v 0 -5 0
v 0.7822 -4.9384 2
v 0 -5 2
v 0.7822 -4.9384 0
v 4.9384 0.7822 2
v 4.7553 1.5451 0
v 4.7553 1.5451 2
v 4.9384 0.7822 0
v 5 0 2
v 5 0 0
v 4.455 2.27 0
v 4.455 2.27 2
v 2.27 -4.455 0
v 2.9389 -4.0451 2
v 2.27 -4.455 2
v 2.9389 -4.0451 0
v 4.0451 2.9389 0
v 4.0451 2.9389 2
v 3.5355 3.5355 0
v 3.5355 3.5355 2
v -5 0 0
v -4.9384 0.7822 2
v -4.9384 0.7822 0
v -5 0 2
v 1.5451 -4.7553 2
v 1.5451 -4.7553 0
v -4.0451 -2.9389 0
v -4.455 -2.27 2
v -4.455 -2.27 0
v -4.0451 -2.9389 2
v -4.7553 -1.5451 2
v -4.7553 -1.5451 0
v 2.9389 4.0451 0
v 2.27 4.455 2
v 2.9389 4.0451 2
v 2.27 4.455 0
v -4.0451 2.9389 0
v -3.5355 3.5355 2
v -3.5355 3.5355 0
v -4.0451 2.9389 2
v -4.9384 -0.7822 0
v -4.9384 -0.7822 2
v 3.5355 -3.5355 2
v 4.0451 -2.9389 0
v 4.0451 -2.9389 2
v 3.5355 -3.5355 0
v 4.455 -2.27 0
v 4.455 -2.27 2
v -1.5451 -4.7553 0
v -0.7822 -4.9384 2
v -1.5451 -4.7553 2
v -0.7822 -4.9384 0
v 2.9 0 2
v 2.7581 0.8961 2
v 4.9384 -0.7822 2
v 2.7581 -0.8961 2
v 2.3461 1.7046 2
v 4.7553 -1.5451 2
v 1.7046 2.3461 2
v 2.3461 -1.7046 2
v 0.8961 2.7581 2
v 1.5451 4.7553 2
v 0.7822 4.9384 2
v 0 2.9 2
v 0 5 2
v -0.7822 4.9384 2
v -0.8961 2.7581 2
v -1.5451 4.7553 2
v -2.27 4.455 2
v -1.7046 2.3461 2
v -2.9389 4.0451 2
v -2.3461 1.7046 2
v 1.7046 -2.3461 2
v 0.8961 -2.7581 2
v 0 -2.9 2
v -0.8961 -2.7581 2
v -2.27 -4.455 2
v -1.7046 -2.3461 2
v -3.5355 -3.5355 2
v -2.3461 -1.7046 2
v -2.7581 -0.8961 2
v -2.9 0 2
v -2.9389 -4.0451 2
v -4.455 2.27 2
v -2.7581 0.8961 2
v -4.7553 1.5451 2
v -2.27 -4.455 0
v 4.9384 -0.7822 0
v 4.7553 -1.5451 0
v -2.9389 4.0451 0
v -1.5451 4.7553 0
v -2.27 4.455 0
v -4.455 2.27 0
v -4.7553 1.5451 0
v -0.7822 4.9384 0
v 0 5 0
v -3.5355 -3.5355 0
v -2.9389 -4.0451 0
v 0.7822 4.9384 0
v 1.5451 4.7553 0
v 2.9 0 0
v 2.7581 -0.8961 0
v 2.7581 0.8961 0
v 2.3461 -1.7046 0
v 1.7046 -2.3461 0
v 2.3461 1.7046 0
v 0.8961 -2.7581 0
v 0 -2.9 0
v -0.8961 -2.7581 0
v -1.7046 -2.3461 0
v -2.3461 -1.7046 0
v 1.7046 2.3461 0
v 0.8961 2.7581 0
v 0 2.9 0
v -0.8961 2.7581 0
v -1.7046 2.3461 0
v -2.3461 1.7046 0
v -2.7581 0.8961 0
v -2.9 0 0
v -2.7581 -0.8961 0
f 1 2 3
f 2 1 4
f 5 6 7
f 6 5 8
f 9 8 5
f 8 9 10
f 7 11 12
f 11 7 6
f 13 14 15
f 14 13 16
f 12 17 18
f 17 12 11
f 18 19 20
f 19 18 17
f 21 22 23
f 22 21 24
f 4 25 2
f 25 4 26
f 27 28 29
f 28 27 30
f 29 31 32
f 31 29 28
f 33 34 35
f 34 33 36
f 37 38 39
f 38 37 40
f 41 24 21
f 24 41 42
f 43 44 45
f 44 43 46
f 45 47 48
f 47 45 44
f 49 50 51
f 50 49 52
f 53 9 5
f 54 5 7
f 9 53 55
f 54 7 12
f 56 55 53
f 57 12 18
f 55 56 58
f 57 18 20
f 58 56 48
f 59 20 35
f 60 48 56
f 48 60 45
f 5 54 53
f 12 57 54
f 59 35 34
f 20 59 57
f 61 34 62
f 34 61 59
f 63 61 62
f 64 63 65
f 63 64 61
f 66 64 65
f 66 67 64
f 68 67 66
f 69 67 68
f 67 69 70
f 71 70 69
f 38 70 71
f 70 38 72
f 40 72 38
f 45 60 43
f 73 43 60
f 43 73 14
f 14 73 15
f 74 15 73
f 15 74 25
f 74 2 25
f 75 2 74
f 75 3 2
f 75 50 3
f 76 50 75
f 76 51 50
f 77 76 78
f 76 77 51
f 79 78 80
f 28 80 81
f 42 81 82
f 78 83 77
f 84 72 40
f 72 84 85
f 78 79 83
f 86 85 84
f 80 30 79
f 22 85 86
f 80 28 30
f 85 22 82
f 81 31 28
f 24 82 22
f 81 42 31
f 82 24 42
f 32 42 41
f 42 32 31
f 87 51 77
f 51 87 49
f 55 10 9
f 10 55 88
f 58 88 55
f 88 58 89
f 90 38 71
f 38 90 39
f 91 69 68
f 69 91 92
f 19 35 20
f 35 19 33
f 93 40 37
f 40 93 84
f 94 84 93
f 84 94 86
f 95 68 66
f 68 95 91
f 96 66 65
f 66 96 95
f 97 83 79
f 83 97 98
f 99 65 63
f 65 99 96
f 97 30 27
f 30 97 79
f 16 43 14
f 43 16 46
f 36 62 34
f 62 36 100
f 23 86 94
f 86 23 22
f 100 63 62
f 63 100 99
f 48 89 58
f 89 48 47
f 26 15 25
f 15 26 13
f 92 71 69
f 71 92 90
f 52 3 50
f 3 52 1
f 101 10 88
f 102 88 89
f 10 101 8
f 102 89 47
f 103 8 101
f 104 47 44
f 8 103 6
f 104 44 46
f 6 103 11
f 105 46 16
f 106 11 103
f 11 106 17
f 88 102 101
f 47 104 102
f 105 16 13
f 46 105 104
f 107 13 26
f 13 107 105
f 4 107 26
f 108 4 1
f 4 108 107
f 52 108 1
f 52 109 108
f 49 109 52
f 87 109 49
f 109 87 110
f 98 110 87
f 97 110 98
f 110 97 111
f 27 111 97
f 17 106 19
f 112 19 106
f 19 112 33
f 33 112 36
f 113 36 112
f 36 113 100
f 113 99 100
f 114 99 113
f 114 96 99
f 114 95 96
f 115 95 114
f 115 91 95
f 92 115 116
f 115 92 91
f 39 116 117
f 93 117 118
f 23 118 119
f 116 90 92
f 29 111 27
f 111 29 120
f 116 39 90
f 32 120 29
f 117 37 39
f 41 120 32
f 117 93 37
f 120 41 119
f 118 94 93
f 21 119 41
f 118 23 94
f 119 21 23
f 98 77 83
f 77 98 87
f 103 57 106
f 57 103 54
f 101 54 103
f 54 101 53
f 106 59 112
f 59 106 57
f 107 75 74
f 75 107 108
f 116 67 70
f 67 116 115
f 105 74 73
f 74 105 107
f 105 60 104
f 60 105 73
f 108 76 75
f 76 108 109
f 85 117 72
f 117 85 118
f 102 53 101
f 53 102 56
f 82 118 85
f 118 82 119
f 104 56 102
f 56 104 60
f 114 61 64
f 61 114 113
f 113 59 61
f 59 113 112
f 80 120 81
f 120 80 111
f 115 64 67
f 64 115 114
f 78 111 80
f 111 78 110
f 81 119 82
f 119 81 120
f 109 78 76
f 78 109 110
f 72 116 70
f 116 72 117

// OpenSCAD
outer  = 10;
inner  = 5.8;
height = 1.6;

difference() {
  cylinder(2, d=outer, $fn=40);
  cylinder(5, d=inner, $fn=20);
}
